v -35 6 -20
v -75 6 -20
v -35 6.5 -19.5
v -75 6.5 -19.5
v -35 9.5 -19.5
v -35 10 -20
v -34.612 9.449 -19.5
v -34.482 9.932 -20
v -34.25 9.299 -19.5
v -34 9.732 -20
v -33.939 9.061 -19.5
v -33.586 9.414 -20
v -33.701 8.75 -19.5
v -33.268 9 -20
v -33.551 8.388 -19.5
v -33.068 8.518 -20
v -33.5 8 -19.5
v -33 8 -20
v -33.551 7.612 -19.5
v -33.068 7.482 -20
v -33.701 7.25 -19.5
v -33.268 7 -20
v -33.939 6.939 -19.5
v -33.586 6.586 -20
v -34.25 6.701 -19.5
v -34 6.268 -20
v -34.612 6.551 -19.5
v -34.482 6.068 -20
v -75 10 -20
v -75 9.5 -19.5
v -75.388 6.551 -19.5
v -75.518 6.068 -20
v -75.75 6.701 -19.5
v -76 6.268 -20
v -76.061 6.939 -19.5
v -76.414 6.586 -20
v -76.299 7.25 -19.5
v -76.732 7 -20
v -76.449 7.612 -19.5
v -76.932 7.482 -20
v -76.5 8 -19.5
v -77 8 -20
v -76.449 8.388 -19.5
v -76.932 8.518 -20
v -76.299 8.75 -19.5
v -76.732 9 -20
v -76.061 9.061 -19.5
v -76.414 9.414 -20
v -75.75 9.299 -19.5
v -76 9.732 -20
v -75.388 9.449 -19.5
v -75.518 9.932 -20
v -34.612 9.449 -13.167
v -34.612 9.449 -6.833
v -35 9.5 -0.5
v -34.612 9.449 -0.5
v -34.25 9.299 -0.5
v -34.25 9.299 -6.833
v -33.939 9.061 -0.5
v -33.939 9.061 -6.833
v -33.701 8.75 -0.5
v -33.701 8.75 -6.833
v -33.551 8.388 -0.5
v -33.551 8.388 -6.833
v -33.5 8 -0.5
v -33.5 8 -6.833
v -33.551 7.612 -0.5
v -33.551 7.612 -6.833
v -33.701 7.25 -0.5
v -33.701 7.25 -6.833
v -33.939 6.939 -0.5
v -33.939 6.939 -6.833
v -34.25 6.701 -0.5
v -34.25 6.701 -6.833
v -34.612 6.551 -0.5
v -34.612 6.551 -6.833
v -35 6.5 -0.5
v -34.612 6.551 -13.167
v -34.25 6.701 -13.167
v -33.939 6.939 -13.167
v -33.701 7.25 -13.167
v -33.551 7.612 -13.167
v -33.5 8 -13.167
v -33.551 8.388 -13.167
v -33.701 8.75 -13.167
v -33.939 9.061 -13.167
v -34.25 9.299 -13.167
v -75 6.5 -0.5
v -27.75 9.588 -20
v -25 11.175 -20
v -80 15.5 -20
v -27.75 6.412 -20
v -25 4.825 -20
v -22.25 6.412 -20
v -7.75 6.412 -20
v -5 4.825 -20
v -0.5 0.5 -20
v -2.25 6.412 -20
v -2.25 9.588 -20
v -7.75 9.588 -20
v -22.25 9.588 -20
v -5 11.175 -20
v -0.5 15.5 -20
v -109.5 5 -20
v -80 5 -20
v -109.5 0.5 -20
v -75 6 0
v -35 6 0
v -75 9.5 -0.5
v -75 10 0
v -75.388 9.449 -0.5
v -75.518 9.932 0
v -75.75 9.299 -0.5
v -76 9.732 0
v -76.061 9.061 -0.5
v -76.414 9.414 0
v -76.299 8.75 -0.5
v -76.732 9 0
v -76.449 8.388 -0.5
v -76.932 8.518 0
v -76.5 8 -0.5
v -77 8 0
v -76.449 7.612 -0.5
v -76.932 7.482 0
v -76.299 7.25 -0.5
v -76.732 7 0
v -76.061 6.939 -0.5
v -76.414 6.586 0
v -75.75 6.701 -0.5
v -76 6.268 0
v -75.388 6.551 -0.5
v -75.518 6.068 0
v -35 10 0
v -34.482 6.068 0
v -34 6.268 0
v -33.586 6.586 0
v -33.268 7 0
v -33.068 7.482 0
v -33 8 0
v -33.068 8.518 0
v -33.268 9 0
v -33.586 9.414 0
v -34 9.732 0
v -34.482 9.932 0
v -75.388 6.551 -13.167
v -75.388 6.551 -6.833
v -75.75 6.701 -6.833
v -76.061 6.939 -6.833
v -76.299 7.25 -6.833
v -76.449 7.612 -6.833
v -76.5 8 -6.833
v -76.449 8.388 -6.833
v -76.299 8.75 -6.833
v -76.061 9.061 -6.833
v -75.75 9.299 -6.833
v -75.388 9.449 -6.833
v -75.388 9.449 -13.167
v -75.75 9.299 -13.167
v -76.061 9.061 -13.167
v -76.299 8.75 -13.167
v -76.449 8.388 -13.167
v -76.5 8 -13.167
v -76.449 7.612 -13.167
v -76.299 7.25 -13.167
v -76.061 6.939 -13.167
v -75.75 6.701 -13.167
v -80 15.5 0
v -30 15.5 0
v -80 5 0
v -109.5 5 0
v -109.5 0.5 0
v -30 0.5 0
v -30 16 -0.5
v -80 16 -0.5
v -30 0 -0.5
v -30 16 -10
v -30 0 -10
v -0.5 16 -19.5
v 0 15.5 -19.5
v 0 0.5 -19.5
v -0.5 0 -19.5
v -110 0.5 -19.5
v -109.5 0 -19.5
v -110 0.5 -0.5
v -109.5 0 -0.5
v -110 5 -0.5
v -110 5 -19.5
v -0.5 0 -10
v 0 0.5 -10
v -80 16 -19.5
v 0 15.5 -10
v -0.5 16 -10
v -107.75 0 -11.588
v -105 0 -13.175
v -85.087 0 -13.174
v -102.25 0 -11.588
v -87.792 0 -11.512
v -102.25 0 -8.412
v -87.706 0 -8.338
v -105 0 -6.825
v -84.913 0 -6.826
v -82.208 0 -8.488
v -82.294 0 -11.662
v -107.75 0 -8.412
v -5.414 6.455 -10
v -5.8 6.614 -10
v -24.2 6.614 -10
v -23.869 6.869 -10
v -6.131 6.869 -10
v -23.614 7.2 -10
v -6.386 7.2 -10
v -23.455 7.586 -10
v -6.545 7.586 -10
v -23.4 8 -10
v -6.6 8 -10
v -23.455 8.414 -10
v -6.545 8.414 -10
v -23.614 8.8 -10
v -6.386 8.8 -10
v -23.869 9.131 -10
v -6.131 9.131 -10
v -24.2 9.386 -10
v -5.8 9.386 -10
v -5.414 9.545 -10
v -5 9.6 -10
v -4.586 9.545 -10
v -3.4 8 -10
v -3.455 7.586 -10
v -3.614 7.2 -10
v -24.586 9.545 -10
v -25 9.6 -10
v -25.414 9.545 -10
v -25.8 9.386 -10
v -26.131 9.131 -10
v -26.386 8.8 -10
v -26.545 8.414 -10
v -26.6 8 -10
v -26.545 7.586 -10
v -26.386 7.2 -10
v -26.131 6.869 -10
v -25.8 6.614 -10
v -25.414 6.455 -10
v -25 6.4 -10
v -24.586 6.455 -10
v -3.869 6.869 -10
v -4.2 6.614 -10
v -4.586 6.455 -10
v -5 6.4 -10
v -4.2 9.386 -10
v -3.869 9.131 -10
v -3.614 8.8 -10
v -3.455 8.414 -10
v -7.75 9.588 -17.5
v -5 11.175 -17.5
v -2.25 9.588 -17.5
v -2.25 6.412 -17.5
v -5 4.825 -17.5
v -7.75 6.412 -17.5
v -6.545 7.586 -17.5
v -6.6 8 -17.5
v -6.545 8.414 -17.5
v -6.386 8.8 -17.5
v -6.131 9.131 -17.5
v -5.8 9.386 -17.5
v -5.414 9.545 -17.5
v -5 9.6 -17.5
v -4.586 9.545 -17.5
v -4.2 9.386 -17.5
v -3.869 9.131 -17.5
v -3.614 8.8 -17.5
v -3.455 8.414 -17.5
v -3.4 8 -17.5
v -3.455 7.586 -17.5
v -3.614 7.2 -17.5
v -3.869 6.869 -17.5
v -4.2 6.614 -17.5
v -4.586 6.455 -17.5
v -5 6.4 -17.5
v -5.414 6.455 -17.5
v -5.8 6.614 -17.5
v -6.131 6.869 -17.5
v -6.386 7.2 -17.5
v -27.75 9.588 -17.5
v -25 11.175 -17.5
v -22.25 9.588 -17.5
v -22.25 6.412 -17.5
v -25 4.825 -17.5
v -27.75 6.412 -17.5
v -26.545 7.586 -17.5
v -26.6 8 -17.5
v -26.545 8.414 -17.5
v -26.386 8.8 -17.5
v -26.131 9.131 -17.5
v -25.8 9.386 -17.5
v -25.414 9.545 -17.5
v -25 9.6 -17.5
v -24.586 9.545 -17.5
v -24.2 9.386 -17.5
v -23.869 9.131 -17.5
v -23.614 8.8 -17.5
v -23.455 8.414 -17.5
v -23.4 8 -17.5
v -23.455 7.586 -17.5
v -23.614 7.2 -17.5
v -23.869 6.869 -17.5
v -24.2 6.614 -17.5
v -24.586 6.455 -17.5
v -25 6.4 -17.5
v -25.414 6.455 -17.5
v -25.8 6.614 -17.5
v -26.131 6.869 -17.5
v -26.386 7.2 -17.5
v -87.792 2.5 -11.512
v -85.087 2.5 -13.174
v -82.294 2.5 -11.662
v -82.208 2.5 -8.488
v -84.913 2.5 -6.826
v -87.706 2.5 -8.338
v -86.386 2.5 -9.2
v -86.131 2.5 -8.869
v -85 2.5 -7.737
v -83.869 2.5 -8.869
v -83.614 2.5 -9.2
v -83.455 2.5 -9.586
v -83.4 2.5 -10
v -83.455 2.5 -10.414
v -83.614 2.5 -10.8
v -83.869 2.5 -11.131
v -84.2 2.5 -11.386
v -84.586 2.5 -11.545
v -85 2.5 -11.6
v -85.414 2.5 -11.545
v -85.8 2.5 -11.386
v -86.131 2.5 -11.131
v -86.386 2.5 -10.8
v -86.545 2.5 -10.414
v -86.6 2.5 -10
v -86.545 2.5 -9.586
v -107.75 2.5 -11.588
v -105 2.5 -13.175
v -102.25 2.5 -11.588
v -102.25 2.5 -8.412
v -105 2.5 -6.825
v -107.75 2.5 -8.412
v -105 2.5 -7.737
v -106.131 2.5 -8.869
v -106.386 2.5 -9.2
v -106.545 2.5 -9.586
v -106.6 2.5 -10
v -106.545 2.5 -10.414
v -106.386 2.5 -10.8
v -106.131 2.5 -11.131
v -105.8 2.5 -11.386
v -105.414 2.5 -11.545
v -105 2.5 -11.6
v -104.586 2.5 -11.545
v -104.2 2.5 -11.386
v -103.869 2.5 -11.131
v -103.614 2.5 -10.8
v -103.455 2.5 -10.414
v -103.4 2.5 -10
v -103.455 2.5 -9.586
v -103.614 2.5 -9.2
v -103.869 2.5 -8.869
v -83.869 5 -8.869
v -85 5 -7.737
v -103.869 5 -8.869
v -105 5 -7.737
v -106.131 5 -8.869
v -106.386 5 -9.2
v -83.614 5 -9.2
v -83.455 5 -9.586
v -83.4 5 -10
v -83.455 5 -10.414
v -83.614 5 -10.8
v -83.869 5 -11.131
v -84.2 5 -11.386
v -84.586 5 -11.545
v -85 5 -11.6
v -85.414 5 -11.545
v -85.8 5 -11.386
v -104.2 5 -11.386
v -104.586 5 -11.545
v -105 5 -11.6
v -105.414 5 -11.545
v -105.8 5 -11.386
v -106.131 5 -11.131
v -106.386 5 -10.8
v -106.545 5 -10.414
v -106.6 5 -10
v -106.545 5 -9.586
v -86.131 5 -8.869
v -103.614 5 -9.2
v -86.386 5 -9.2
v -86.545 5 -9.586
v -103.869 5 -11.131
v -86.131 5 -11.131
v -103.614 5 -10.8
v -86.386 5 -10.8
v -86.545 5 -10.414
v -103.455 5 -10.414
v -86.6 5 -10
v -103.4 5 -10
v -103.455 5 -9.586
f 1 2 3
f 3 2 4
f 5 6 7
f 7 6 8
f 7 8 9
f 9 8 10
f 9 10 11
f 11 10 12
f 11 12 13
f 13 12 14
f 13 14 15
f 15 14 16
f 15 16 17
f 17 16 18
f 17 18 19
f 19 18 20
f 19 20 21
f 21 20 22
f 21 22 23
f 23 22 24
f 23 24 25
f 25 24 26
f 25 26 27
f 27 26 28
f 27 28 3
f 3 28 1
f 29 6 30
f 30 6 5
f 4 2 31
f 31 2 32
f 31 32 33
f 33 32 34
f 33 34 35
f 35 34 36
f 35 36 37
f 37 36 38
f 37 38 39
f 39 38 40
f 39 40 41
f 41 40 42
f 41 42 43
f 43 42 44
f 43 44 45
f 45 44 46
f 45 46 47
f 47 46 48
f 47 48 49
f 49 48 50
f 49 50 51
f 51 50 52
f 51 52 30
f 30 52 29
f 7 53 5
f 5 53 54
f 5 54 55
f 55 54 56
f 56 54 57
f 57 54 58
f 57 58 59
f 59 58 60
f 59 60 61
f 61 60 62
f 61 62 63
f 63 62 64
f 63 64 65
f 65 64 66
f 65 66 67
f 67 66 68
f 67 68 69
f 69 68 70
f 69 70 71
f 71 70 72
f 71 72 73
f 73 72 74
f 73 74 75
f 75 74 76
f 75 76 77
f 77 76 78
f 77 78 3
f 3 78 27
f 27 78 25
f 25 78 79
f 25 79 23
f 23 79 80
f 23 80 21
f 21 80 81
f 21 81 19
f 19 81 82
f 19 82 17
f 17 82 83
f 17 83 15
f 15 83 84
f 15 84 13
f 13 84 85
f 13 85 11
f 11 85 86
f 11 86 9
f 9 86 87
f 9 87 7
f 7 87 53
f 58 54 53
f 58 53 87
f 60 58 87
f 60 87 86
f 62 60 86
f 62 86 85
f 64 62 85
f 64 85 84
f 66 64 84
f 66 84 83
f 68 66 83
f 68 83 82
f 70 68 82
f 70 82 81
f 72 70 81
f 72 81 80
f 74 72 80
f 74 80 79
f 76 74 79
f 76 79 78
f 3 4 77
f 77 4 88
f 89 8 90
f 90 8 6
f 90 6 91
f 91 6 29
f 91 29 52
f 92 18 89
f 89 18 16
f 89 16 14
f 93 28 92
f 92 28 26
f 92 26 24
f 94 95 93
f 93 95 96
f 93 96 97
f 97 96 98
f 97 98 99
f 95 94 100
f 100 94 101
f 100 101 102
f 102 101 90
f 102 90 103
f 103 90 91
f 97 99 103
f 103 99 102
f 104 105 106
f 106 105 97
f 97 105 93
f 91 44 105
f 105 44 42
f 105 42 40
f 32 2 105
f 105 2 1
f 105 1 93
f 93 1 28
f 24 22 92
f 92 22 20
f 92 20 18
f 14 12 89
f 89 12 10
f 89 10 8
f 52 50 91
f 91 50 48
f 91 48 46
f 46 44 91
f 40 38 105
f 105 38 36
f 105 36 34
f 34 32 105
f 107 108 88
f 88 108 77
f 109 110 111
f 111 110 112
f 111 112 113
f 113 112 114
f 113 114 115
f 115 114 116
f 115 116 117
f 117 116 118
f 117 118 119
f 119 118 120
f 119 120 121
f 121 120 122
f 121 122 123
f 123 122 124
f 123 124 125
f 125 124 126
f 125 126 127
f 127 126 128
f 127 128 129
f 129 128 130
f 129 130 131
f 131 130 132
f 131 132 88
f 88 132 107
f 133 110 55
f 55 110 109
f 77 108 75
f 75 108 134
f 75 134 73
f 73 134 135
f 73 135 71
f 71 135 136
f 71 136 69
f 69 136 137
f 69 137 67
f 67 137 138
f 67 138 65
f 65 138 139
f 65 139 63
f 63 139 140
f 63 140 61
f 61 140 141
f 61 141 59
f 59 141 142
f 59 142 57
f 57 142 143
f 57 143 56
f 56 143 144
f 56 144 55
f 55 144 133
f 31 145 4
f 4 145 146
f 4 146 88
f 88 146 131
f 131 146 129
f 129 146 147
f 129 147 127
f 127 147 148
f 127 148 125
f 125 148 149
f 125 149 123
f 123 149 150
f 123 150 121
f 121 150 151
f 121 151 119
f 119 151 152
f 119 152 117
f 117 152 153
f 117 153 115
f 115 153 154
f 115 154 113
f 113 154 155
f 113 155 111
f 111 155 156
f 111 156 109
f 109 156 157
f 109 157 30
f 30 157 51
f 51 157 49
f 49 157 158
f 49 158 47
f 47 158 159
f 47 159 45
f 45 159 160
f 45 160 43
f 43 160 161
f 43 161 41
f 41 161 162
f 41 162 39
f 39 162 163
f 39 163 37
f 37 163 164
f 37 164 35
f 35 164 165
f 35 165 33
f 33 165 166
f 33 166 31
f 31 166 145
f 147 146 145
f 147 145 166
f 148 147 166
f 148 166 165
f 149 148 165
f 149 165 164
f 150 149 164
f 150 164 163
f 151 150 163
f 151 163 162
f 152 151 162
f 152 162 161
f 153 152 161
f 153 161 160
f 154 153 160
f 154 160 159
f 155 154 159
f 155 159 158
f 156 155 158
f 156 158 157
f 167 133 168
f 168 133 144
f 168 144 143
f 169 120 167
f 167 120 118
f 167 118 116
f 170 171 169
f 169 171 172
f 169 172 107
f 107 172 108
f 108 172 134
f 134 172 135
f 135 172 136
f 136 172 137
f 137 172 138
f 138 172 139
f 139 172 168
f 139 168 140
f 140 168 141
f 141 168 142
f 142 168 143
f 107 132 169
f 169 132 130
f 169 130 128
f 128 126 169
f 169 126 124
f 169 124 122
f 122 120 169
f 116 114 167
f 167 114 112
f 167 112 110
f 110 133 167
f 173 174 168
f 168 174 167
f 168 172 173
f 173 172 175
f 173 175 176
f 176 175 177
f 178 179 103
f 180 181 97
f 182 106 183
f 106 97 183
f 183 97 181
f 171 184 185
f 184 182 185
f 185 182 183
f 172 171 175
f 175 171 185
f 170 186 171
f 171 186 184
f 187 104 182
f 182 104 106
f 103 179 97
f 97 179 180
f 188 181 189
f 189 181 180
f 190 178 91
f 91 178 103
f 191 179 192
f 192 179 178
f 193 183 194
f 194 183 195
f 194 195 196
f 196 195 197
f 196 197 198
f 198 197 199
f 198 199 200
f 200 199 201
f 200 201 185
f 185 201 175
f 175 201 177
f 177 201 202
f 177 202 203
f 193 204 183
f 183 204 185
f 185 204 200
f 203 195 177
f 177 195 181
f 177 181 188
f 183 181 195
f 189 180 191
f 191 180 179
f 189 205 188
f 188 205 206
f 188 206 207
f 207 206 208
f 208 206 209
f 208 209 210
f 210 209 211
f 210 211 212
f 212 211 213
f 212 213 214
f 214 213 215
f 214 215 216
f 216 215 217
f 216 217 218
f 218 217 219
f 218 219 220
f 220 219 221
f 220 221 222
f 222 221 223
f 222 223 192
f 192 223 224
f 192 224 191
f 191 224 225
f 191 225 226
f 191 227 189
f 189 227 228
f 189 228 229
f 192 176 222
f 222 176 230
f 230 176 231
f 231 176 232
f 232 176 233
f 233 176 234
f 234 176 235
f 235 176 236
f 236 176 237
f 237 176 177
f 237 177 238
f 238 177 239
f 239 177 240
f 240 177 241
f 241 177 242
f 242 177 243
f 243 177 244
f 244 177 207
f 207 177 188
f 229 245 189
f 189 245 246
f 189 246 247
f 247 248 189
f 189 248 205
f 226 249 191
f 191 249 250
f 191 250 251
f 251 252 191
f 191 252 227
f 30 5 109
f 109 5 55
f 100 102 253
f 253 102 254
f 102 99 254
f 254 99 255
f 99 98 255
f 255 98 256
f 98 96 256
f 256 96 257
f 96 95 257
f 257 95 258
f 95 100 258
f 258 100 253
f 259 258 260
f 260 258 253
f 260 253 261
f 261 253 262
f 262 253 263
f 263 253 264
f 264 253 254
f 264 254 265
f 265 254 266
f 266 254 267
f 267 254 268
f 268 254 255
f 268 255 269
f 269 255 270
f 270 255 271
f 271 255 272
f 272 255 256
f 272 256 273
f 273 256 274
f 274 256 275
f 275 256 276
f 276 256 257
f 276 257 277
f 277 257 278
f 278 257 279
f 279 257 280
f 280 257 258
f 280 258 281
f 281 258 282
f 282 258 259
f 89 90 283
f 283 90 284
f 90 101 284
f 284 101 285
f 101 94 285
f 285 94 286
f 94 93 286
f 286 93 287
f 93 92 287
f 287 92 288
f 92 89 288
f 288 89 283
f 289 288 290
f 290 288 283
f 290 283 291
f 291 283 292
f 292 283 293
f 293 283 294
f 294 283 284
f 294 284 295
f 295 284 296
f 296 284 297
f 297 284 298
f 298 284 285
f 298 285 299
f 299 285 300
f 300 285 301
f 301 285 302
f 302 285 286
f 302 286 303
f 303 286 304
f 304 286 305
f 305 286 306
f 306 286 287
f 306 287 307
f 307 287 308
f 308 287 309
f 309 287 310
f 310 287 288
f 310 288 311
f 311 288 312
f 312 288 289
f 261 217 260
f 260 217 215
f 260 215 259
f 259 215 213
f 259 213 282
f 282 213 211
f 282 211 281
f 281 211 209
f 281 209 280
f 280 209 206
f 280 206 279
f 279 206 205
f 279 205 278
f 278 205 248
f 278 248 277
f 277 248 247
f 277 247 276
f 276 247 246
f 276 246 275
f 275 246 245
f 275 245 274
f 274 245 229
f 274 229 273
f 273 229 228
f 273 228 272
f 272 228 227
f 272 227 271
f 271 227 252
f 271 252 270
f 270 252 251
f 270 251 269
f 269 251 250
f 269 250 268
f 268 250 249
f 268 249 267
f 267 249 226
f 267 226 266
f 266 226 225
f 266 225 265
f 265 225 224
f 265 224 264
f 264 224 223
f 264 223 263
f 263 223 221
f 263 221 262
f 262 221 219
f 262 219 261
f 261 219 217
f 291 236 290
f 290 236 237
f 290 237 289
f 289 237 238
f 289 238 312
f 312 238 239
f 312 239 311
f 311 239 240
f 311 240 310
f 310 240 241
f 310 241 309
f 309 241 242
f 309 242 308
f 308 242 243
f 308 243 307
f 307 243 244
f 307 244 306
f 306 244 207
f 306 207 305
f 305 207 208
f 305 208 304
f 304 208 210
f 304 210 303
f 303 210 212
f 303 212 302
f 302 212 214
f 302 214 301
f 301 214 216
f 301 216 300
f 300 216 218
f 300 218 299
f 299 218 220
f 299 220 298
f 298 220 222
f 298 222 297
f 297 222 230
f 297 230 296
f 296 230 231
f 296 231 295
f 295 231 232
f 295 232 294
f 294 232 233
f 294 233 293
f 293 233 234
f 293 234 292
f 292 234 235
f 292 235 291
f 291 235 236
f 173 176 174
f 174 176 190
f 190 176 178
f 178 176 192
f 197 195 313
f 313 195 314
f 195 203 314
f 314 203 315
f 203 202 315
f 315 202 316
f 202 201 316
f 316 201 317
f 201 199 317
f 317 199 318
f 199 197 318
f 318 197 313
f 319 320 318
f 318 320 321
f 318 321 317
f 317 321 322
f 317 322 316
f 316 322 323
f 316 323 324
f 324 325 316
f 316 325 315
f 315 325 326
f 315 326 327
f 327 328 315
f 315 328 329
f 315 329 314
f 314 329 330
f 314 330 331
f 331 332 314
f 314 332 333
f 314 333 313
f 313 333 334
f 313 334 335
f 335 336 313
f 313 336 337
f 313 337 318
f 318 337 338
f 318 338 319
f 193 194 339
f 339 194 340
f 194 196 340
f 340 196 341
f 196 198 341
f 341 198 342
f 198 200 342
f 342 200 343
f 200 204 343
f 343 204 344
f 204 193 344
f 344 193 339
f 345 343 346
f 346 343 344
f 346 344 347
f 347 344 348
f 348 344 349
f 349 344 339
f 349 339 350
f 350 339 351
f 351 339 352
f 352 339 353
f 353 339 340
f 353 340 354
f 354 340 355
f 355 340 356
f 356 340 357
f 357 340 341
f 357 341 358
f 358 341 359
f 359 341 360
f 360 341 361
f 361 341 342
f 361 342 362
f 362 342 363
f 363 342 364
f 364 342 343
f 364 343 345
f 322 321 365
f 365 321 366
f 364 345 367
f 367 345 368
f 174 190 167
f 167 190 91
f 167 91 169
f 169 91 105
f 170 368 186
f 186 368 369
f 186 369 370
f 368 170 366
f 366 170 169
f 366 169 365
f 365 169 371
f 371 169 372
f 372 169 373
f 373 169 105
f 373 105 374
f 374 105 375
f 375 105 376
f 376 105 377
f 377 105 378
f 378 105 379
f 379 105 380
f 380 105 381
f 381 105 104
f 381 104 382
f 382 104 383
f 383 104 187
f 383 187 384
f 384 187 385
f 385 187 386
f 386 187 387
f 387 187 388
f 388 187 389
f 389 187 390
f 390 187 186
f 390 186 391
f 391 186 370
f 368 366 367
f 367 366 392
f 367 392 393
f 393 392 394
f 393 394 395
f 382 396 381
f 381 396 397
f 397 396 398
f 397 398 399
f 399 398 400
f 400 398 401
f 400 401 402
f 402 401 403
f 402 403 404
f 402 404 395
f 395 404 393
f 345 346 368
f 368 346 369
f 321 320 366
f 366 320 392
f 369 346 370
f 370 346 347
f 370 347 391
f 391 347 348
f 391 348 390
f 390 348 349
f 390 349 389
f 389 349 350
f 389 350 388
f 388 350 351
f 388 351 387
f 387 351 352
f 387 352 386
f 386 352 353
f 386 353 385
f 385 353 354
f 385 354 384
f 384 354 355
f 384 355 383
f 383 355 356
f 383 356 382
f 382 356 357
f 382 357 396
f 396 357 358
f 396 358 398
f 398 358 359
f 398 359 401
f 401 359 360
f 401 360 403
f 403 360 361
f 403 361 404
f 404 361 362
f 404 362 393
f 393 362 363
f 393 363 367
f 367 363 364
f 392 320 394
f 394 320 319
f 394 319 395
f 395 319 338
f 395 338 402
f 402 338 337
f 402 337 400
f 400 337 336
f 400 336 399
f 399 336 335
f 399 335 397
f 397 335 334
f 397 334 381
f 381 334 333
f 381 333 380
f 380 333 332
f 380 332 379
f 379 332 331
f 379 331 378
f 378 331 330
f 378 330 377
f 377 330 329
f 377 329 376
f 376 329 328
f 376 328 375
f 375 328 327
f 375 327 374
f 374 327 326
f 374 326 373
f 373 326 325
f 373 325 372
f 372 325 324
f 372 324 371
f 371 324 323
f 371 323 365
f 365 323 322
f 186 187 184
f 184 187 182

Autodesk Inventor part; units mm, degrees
ref_plane "YZ Plane" through (0, 0, 0) normal (1, 0, 0) x (0, 1, 0)
ref_plane "XZ Plane" through (0, 0, 0) normal (0, 1, 0) x (-1, 0, 0)
ref_plane "XY Plane" through (0, 0, 0) normal (0, 0, 1) x (1, 0, 0)
sketch "Náčrt1" plane through (0, 0, 0) normal (0, 1, 0) x (-1, 0, 0)
  line L0 (0, 0) -> (110, 0)
  line L1 (110, 0) -> (110, -20)
  line L2 (110, -20) -> (0, -20)
  line L3 (0, -20) -> (0, 0)
  line L4 (55, -20) -> (55, 0) construction
  line L5 (110, -10) -> (0, -10) construction
  circle A0 centre (105, -10) radius 1.6
  circle A1 centre (85, -10) radius 1.6
  line L6 (105, -10) -> (105, -4.8731) construction
  line L7 (85, -10) -> (85, -4.8731) construction
  line L8 (105, -7.7373) -> (103.8686, -8.8686)
  line L9 (105, -7.7373) -> (106.1314, -8.8686)
  line L10 (85, -7.7373) -> (83.8686, -8.8686)
  line L11 (85, -7.7373) -> (86.1314, -8.8686)
  dimension "d0" = 20
  dimension "d1" = 110
  dimension "d4" = 3.2
  dimension "d6" = 25
  dimension "d7" = 5
  dimension "d49" = 90
  dimension "d50" = 90
extrude "Vysunutí1" add sketch "Náčrt1" along normal blind 16
sketch "Náčrt2" plane through (0, 16, 0) normal (0, 1, 0) x (1, 0, 0)
  line L0 (0, 20) -> (-110, 20) projected
  line L1 (-110, 20) -> (-110, 0) projected
  line L2 (-110, 0) -> (0, 0) projected
  line L3 (0, 0) -> (0, 20) projected
  arc A0 (-83.8686, 8.8686) -> (-86.1314, 8.8686) centre (-85, 10) ccw projected
  arc A1 (-103.8686, 8.8686) -> (-106.1314, 8.8686) centre (-105, 10) ccw projected
  line L4 (-80, 0) -> (-80, 20)
  line L5 (-30, 0) -> (-30, 20)
  arc A2 (-103.8686, 8.8686) -> (-106.1314, 8.8686) centre (-105, 10) ccw construction
  arc A3 (-83.8686, 8.8686) -> (-86.1314, 8.8686) centre (-85, 10) ccw projected
  line L6 (-85, 7.7373) -> (-86.1314, 8.8686) projected
  line L7 (-83.8686, 8.8686) -> (-85, 7.7373) projected
  line L8 (-105, 7.7373) -> (-106.1314, 8.8686) projected
  line L9 (-103.8686, 8.8686) -> (-105, 7.7373) projected
  point P0 (0, 10)
  point P1 (-30, 10)
  point P2 (-85, 7.7373)
  point P3 (-105, 7.7373)
  dimension "d10" = 30
  dimension "d11" = 30
extrude "Vysunutí2" cut sketch "Náčrt2" against normal blind 11 contours L4 L2 L1 L0 | L7 L6 A0 | L9 L8 A1
sketch "Náčrt4" plane through (0, 0, 0) normal (0, -1, 0) x (1, 0, 0)
  line L0 (0, -20) -> (-110, -20) projected
  line L1 (0, 0) -> (0, -20) projected
  line L2 (-110, 0) -> (0, 0) projected
  line L3 (-110, -20) -> (-110, 0) projected
  arc A0 (-86.1314, -8.8686) -> (-83.8686, -8.8686) centre (-85, -10) ccw projected
  arc A1 (-106.1314, -8.8686) -> (-103.8686, -8.8686) centre (-105, -10) ccw projected
  arc A2 (-110, -20) -> (-110, -20) centre (-105, -10) ccw projected
  line L4 (-105, -6.8246) -> (-102.25, -8.4123)
  line L5 (-102.25, -8.4123) -> (-102.25, -11.5877)
  line L6 (-102.25, -11.5877) -> (-105, -13.1754)
  line L7 (-105, -13.1754) -> (-107.75, -11.5877)
  line L8 (-107.75, -11.5877) -> (-107.75, -8.4123)
  line L9 (-107.75, -8.4123) -> (-105, -6.8246)
  arc A3 (-110, -20) -> (-110, -20) centre (-85, -10) ccw projected
  line L10 (-84.9134, -6.8258) -> (-82.2077, -8.4879)
  line L11 (-82.2077, -8.4879) -> (-82.2943, -11.6621)
  line L12 (-82.2943, -11.6621) -> (-85.0866, -13.1742)
  line L13 (-85.0866, -13.1742) -> (-87.7923, -11.5121)
  line L14 (-87.7923, -11.5121) -> (-87.7057, -8.3379)
  line L15 (-87.7057, -8.3379) -> (-84.9134, -6.8258)
  line L16 (-85, -7.7373) -> (-86.1314, -8.8686) projected
  line L17 (-83.8686, -8.8686) -> (-85, -7.7373) projected
  line L18 (-105, -7.7373) -> (-106.1314, -8.8686) projected
  line L19 (-103.8686, -8.8686) -> (-105, -7.7373) projected
  point P0 (-102.25, -10)
  point P1 (-107.75, -10)
  dimension "d17" = 5.5
extrude "Vysunutí4" cut sketch "Náčrt4" against normal blind 2.5 contours L16 L17 A0 | L18 L19 A1 | L4 L5 L6 L7 L8 L9 | L10 L11 L12 L13 L14 L15
sketch "Náčrt6" plane through (-110, 0, 0) normal (0, 0, 1) x (1, 0, 0)
  line L0 (0, 0) -> (0, 5) projected
  line L1 (0, 0) -> (110, 0) projected
  line L2 (110, 0) -> (110, 16) projected
  line L3 (30, 16) -> (110, 16) projected
  line L4 (110, 16) -> (0, 16) projected
  line L5 (80, 16) -> (80, 0)
  line L6 (30, 16) -> (30, 5) projected
  line L7 (30, 5) -> (0, 5) projected
  dimension "d24" = 30
extrude "Vysunutí5" cut sketch "Náčrt6" against normal blind 10 contours L5 L3 L2 L1
sketch "Náčrt7" plane through (-110, 0, -10) normal (0, 0, 1) x (1, 0, 0)
  line L0 (80, 16) -> (110, 16) projected
  line L1 (80, 0) -> (80, 16) projected
  line L2 (110, 0) -> (80, 0) projected
  line L3 (110, 16) -> (110, 0) projected
  line L4 (110, 0) -> (110, 16) construction
  line L5 (110, 8) -> (80, 8) construction
  circle A0 centre (85, 8) radius 1.6
  circle A1 centre (105, 8) radius 1.6
  line L6 (85, 8) -> (85, 12.494) construction
  line L7 (105, 8) -> (105, 11.0554) construction
  line L8 (85, 10.2627) -> (83.8686, 9.1314)
  line L9 (85, 10.2627) -> (86.1314, 9.1314)
  line L10 (105, 10.2627) -> (103.8686, 9.1314)
  line L11 (105, 10.2627) -> (106.1314, 9.1314)
  dimension "d30" = 3.2
  dimension "d31" = 25
  dimension "d32" = 5
  dimension "d38" = 90
  dimension "d39" = 90
extrude "Vysunutí6" cut sketch "Náčrt7" against normal through all contours A0 | A1
sketch "Náčrt8" plane through (0, 0, -20) normal (0, 0, -1) x (-1, 0, 0)
  circle A0 centre (5, 8) radius 1.6 projected
  circle A1 centre (25, 8) radius 1.6 projected
  line L0 (0, 16) -> (80, 16) projected
  line L1 (0, 0) -> (0, 16) projected
  line L2 (0, 0) -> (110, 0) projected
  line L3 (110, 0) -> (110, 5) projected
  line L4 (25, 4.8246) -> (22.25, 6.4123)
  line L5 (22.25, 6.4123) -> (22.25, 9.5877)
  line L6 (22.25, 9.5877) -> (25, 11.1754)
  line L7 (25, 11.1754) -> (27.75, 9.5877)
  line L8 (27.75, 9.5877) -> (27.75, 6.4123)
  line L9 (27.75, 6.4123) -> (25, 4.8246)
  line L10 (5, 4.8246) -> (2.25, 6.4123)
  line L11 (2.25, 6.4123) -> (2.25, 9.5877)
  line L12 (2.25, 9.5877) -> (5, 11.1754)
  line L13 (5, 11.1754) -> (7.75, 9.5877)
  line L14 (7.75, 9.5877) -> (7.75, 6.4123)
  line L15 (7.75, 6.4123) -> (5, 4.8246)
  line L16 (80, 5) -> (80, 16) projected
  line L17 (110, 5) -> (80, 5) projected
  dimension "d35" = 5.5
extrude "Vysunutí7" cut sketch "Náčrt8" against normal blind 2.5 contours A0 | A1 | L4 L5 L6 L7 L8 L9 | L10 L11 L12 L13 L14 L15
sketch "Náčrt10" plane through (-110, 5, 0) normal (0, 0, 1) x (1, 0, 0)
  line L0 (80, -5) -> (80, 11) projected
  line L1 (30, 11) -> (80, 11) projected
  line L2 (0, -5) -> (0, 0) projected
  line L3 (0, -5) -> (80, -5) projected
  circle A0 centre (105, 3) radius 1.6 projected
  circle A1 centre (85, 3) radius 1.6 projected
  line L4 (80, 11) -> (110, 11) projected
  line L5 (80, -5) -> (80, 11) projected
  line L6 (110, -5) -> (80, -5) projected
  line L7 (110, 11) -> (110, -5) projected
  line L8 (55, 22.3819) -> (55, -13.3022) construction
  line L9 (110, -5) -> (110, 11) construction
  line L10 (110, 3) -> (22.1304, 3) construction
  line L11 (35, 3) -> (75, 3) construction
  line L12 (35, 1.5) -> (75, 1.5)
  line L13 (75, 4.5) -> (35, 4.5)
  arc A2 (35, 4.5) -> (35, 1.5) centre (35, 3) ccw
  arc A3 (75, 1.5) -> (75, 4.5) centre (75, 3) ccw
  line L14 (110, -5) -> (0, -5) projected
  line L15 (30, 11) -> (30, 0) projected
  line L16 (30, 0) -> (0, 0) projected
  point P0 (55, 3)
  point P1 (55, -5)
  dimension "d43" = 3
  dimension "d44" = 40
extrude "Vysunutí8" cut sketch "Náčrt10" against normal up to surface (20 mm away) contours A2 L13 A3 L12
chamfer "Zkosení3" distance 0.5 angle 45 18 edges at (-70, 0, 0) (-55, 0, -20) (-55, 16, 0) (-110, 2.5, 0) (-110, 2.5, -20) (-110, 0, -10) (0, 0, -15) (0, 8, -20) (0, 16, -15) (-40, 16, -20) (-55, 6.5, 0) (-76.5, 8, 0) (-55, 9.5, 0) (-33.5, 8, 0) (-55, 6.5, -20) (-33.5, 8, -20) (-55, 9.5, -20) (-76.5, 8, -20)
properties part number "middle_hole"
